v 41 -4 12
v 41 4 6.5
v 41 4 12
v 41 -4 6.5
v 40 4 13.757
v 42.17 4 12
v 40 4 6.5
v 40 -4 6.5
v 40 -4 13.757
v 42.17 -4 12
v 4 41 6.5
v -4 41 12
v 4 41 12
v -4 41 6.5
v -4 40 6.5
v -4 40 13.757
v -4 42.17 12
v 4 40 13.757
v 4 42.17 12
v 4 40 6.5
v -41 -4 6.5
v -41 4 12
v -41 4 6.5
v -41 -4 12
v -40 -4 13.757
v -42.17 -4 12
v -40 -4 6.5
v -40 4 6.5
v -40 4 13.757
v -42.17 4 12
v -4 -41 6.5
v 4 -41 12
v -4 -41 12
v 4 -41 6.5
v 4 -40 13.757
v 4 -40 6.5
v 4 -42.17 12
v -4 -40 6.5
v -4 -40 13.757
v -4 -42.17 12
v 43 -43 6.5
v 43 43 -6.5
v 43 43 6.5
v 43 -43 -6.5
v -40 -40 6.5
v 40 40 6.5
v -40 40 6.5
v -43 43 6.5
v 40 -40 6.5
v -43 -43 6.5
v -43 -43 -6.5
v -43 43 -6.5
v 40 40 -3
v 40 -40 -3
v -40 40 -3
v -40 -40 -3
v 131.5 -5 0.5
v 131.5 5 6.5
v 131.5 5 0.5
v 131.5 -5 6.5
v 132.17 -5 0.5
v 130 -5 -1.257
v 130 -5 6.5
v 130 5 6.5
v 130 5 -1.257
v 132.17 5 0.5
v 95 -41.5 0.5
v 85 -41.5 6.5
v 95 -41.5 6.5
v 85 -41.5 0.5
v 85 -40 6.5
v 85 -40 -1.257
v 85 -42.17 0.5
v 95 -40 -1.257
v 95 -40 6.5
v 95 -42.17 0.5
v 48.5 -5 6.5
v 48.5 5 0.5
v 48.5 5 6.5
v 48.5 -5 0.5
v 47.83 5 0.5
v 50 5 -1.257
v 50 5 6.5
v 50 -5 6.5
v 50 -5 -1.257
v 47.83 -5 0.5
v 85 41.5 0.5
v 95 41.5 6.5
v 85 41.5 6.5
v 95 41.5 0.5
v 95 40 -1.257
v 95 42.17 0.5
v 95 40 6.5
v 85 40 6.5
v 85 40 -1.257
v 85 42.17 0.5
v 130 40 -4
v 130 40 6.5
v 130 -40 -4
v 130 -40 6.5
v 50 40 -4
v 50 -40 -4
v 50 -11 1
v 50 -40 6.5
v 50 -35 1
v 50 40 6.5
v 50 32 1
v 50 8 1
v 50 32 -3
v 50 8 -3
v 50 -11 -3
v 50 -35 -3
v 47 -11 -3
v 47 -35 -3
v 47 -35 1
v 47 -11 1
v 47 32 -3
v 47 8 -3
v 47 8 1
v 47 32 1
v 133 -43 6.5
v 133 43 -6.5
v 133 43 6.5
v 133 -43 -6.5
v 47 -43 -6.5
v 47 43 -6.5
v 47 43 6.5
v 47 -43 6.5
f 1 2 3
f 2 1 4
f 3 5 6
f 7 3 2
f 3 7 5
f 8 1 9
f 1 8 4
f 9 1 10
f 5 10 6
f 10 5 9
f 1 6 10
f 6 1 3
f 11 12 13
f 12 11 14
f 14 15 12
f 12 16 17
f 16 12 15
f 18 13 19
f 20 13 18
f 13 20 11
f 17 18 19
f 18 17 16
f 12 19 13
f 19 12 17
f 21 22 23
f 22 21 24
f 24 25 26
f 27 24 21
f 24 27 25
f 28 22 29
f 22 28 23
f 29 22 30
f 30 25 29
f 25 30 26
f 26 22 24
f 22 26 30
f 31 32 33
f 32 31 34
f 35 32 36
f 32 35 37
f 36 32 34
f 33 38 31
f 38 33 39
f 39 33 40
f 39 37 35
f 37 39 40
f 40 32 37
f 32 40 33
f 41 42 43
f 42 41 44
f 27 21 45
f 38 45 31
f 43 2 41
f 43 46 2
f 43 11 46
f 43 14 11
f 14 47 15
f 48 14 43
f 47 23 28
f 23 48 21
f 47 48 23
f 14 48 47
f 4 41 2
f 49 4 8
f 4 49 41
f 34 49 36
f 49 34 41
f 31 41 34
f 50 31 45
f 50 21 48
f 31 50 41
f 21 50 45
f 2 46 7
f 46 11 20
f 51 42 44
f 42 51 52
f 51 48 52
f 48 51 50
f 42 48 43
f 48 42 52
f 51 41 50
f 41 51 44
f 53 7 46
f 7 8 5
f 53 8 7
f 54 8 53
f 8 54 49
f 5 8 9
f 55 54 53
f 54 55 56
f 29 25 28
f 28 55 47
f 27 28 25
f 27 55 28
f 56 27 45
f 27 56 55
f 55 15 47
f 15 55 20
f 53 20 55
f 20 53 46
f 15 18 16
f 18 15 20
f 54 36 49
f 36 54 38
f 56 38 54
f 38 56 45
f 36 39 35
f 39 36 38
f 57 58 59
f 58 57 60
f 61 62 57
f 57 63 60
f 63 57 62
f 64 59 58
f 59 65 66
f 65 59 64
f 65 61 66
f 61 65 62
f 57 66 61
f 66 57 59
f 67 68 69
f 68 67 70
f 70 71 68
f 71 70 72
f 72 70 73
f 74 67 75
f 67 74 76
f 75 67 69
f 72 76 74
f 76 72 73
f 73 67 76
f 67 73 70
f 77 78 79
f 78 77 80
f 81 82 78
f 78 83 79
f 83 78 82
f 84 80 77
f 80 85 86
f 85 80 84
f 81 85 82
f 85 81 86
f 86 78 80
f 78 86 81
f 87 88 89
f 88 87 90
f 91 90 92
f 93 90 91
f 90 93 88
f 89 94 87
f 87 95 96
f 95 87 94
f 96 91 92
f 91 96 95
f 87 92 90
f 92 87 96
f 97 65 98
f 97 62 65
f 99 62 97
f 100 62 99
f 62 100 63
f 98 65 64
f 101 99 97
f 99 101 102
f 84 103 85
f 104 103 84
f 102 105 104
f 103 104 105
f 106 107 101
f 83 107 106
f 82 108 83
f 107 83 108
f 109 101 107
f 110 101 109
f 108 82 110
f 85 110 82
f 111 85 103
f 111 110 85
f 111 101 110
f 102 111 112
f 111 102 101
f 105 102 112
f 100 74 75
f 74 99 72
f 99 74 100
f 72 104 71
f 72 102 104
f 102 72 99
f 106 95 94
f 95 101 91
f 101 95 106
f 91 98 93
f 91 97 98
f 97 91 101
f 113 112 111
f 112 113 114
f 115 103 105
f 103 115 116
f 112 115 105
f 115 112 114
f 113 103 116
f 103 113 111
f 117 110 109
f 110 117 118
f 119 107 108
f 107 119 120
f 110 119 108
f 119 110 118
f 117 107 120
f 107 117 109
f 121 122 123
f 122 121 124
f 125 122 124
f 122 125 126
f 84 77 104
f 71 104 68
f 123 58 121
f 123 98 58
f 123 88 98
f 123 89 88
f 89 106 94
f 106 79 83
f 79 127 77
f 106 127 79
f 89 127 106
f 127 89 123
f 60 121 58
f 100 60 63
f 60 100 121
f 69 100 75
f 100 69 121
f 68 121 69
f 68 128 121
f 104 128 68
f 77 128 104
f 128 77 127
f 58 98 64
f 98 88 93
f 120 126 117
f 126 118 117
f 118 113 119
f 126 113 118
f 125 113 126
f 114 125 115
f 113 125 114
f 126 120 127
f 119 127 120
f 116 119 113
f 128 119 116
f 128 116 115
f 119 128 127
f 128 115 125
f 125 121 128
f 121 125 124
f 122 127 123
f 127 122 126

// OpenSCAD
module triangle(o_len, a_len, depth, center=false)
{
    centroid = center ? [-a_len/3, -o_len/3, -depth/2] : [0, 0, 0];
    translate(centroid) linear_extrude(height=depth)
    {
        polygon(points=[[0,0],[a_len,0],[0,o_len]], paths=[[0,1,2]]);
    }
}

module a_triangle(tan_angle, a_len, depth, center=false)
{
    triangle(tan(tan_angle) * a_len, a_len, depth, center);
}

module clip_bottom(x, y, z, l, t, w)
{
    translate([x, y, z]){
        cube(size=[w, l, 10], center=true);
        rotate([0, -90, -90]) translate([4.5, -0.3, t        ])
        a_triangle(51, 2, l);
    }
}

wt = 6;

difference(){
    union(){
        for(i=[0, 90, 180, 270]){
            rotate([0,0,i])
            clip_bottom(40, 0, 7.5, 8, 
            -4, 2);
        }
        cube(size=[80 + wt, 80 + wt, 13], center=true);
    }
    translate([0, 0, 3]){
        translate([0,0,3])
        cube(size=[80, 80, 18], center=true);
    }
}

translate([90, 0, 0]){
    rotate([180,0,0]){
    difference(){
        cube(size=[80 + wt, 80 + wt, 13], center=          true);
        
        union(){
            translate([0, 0, -5]){
                cube(size=[80, 80, 18], center=true);
            }
            for(i=[0, 90, 180, 270]){
                rotate([0,0,i])
                clip_bottom(40, 0, -5, 10, -5, 3);
            }
            color("red")
            translate([-40, 23,1]){
                cube(size=[15, 28-4, 7-3], center=true);
            }
            color("red")
            translate([-40, -20,1]){
                cube(size=[15, 28-4, 7-3], center=true);
            }
        }
        }
    }
}
